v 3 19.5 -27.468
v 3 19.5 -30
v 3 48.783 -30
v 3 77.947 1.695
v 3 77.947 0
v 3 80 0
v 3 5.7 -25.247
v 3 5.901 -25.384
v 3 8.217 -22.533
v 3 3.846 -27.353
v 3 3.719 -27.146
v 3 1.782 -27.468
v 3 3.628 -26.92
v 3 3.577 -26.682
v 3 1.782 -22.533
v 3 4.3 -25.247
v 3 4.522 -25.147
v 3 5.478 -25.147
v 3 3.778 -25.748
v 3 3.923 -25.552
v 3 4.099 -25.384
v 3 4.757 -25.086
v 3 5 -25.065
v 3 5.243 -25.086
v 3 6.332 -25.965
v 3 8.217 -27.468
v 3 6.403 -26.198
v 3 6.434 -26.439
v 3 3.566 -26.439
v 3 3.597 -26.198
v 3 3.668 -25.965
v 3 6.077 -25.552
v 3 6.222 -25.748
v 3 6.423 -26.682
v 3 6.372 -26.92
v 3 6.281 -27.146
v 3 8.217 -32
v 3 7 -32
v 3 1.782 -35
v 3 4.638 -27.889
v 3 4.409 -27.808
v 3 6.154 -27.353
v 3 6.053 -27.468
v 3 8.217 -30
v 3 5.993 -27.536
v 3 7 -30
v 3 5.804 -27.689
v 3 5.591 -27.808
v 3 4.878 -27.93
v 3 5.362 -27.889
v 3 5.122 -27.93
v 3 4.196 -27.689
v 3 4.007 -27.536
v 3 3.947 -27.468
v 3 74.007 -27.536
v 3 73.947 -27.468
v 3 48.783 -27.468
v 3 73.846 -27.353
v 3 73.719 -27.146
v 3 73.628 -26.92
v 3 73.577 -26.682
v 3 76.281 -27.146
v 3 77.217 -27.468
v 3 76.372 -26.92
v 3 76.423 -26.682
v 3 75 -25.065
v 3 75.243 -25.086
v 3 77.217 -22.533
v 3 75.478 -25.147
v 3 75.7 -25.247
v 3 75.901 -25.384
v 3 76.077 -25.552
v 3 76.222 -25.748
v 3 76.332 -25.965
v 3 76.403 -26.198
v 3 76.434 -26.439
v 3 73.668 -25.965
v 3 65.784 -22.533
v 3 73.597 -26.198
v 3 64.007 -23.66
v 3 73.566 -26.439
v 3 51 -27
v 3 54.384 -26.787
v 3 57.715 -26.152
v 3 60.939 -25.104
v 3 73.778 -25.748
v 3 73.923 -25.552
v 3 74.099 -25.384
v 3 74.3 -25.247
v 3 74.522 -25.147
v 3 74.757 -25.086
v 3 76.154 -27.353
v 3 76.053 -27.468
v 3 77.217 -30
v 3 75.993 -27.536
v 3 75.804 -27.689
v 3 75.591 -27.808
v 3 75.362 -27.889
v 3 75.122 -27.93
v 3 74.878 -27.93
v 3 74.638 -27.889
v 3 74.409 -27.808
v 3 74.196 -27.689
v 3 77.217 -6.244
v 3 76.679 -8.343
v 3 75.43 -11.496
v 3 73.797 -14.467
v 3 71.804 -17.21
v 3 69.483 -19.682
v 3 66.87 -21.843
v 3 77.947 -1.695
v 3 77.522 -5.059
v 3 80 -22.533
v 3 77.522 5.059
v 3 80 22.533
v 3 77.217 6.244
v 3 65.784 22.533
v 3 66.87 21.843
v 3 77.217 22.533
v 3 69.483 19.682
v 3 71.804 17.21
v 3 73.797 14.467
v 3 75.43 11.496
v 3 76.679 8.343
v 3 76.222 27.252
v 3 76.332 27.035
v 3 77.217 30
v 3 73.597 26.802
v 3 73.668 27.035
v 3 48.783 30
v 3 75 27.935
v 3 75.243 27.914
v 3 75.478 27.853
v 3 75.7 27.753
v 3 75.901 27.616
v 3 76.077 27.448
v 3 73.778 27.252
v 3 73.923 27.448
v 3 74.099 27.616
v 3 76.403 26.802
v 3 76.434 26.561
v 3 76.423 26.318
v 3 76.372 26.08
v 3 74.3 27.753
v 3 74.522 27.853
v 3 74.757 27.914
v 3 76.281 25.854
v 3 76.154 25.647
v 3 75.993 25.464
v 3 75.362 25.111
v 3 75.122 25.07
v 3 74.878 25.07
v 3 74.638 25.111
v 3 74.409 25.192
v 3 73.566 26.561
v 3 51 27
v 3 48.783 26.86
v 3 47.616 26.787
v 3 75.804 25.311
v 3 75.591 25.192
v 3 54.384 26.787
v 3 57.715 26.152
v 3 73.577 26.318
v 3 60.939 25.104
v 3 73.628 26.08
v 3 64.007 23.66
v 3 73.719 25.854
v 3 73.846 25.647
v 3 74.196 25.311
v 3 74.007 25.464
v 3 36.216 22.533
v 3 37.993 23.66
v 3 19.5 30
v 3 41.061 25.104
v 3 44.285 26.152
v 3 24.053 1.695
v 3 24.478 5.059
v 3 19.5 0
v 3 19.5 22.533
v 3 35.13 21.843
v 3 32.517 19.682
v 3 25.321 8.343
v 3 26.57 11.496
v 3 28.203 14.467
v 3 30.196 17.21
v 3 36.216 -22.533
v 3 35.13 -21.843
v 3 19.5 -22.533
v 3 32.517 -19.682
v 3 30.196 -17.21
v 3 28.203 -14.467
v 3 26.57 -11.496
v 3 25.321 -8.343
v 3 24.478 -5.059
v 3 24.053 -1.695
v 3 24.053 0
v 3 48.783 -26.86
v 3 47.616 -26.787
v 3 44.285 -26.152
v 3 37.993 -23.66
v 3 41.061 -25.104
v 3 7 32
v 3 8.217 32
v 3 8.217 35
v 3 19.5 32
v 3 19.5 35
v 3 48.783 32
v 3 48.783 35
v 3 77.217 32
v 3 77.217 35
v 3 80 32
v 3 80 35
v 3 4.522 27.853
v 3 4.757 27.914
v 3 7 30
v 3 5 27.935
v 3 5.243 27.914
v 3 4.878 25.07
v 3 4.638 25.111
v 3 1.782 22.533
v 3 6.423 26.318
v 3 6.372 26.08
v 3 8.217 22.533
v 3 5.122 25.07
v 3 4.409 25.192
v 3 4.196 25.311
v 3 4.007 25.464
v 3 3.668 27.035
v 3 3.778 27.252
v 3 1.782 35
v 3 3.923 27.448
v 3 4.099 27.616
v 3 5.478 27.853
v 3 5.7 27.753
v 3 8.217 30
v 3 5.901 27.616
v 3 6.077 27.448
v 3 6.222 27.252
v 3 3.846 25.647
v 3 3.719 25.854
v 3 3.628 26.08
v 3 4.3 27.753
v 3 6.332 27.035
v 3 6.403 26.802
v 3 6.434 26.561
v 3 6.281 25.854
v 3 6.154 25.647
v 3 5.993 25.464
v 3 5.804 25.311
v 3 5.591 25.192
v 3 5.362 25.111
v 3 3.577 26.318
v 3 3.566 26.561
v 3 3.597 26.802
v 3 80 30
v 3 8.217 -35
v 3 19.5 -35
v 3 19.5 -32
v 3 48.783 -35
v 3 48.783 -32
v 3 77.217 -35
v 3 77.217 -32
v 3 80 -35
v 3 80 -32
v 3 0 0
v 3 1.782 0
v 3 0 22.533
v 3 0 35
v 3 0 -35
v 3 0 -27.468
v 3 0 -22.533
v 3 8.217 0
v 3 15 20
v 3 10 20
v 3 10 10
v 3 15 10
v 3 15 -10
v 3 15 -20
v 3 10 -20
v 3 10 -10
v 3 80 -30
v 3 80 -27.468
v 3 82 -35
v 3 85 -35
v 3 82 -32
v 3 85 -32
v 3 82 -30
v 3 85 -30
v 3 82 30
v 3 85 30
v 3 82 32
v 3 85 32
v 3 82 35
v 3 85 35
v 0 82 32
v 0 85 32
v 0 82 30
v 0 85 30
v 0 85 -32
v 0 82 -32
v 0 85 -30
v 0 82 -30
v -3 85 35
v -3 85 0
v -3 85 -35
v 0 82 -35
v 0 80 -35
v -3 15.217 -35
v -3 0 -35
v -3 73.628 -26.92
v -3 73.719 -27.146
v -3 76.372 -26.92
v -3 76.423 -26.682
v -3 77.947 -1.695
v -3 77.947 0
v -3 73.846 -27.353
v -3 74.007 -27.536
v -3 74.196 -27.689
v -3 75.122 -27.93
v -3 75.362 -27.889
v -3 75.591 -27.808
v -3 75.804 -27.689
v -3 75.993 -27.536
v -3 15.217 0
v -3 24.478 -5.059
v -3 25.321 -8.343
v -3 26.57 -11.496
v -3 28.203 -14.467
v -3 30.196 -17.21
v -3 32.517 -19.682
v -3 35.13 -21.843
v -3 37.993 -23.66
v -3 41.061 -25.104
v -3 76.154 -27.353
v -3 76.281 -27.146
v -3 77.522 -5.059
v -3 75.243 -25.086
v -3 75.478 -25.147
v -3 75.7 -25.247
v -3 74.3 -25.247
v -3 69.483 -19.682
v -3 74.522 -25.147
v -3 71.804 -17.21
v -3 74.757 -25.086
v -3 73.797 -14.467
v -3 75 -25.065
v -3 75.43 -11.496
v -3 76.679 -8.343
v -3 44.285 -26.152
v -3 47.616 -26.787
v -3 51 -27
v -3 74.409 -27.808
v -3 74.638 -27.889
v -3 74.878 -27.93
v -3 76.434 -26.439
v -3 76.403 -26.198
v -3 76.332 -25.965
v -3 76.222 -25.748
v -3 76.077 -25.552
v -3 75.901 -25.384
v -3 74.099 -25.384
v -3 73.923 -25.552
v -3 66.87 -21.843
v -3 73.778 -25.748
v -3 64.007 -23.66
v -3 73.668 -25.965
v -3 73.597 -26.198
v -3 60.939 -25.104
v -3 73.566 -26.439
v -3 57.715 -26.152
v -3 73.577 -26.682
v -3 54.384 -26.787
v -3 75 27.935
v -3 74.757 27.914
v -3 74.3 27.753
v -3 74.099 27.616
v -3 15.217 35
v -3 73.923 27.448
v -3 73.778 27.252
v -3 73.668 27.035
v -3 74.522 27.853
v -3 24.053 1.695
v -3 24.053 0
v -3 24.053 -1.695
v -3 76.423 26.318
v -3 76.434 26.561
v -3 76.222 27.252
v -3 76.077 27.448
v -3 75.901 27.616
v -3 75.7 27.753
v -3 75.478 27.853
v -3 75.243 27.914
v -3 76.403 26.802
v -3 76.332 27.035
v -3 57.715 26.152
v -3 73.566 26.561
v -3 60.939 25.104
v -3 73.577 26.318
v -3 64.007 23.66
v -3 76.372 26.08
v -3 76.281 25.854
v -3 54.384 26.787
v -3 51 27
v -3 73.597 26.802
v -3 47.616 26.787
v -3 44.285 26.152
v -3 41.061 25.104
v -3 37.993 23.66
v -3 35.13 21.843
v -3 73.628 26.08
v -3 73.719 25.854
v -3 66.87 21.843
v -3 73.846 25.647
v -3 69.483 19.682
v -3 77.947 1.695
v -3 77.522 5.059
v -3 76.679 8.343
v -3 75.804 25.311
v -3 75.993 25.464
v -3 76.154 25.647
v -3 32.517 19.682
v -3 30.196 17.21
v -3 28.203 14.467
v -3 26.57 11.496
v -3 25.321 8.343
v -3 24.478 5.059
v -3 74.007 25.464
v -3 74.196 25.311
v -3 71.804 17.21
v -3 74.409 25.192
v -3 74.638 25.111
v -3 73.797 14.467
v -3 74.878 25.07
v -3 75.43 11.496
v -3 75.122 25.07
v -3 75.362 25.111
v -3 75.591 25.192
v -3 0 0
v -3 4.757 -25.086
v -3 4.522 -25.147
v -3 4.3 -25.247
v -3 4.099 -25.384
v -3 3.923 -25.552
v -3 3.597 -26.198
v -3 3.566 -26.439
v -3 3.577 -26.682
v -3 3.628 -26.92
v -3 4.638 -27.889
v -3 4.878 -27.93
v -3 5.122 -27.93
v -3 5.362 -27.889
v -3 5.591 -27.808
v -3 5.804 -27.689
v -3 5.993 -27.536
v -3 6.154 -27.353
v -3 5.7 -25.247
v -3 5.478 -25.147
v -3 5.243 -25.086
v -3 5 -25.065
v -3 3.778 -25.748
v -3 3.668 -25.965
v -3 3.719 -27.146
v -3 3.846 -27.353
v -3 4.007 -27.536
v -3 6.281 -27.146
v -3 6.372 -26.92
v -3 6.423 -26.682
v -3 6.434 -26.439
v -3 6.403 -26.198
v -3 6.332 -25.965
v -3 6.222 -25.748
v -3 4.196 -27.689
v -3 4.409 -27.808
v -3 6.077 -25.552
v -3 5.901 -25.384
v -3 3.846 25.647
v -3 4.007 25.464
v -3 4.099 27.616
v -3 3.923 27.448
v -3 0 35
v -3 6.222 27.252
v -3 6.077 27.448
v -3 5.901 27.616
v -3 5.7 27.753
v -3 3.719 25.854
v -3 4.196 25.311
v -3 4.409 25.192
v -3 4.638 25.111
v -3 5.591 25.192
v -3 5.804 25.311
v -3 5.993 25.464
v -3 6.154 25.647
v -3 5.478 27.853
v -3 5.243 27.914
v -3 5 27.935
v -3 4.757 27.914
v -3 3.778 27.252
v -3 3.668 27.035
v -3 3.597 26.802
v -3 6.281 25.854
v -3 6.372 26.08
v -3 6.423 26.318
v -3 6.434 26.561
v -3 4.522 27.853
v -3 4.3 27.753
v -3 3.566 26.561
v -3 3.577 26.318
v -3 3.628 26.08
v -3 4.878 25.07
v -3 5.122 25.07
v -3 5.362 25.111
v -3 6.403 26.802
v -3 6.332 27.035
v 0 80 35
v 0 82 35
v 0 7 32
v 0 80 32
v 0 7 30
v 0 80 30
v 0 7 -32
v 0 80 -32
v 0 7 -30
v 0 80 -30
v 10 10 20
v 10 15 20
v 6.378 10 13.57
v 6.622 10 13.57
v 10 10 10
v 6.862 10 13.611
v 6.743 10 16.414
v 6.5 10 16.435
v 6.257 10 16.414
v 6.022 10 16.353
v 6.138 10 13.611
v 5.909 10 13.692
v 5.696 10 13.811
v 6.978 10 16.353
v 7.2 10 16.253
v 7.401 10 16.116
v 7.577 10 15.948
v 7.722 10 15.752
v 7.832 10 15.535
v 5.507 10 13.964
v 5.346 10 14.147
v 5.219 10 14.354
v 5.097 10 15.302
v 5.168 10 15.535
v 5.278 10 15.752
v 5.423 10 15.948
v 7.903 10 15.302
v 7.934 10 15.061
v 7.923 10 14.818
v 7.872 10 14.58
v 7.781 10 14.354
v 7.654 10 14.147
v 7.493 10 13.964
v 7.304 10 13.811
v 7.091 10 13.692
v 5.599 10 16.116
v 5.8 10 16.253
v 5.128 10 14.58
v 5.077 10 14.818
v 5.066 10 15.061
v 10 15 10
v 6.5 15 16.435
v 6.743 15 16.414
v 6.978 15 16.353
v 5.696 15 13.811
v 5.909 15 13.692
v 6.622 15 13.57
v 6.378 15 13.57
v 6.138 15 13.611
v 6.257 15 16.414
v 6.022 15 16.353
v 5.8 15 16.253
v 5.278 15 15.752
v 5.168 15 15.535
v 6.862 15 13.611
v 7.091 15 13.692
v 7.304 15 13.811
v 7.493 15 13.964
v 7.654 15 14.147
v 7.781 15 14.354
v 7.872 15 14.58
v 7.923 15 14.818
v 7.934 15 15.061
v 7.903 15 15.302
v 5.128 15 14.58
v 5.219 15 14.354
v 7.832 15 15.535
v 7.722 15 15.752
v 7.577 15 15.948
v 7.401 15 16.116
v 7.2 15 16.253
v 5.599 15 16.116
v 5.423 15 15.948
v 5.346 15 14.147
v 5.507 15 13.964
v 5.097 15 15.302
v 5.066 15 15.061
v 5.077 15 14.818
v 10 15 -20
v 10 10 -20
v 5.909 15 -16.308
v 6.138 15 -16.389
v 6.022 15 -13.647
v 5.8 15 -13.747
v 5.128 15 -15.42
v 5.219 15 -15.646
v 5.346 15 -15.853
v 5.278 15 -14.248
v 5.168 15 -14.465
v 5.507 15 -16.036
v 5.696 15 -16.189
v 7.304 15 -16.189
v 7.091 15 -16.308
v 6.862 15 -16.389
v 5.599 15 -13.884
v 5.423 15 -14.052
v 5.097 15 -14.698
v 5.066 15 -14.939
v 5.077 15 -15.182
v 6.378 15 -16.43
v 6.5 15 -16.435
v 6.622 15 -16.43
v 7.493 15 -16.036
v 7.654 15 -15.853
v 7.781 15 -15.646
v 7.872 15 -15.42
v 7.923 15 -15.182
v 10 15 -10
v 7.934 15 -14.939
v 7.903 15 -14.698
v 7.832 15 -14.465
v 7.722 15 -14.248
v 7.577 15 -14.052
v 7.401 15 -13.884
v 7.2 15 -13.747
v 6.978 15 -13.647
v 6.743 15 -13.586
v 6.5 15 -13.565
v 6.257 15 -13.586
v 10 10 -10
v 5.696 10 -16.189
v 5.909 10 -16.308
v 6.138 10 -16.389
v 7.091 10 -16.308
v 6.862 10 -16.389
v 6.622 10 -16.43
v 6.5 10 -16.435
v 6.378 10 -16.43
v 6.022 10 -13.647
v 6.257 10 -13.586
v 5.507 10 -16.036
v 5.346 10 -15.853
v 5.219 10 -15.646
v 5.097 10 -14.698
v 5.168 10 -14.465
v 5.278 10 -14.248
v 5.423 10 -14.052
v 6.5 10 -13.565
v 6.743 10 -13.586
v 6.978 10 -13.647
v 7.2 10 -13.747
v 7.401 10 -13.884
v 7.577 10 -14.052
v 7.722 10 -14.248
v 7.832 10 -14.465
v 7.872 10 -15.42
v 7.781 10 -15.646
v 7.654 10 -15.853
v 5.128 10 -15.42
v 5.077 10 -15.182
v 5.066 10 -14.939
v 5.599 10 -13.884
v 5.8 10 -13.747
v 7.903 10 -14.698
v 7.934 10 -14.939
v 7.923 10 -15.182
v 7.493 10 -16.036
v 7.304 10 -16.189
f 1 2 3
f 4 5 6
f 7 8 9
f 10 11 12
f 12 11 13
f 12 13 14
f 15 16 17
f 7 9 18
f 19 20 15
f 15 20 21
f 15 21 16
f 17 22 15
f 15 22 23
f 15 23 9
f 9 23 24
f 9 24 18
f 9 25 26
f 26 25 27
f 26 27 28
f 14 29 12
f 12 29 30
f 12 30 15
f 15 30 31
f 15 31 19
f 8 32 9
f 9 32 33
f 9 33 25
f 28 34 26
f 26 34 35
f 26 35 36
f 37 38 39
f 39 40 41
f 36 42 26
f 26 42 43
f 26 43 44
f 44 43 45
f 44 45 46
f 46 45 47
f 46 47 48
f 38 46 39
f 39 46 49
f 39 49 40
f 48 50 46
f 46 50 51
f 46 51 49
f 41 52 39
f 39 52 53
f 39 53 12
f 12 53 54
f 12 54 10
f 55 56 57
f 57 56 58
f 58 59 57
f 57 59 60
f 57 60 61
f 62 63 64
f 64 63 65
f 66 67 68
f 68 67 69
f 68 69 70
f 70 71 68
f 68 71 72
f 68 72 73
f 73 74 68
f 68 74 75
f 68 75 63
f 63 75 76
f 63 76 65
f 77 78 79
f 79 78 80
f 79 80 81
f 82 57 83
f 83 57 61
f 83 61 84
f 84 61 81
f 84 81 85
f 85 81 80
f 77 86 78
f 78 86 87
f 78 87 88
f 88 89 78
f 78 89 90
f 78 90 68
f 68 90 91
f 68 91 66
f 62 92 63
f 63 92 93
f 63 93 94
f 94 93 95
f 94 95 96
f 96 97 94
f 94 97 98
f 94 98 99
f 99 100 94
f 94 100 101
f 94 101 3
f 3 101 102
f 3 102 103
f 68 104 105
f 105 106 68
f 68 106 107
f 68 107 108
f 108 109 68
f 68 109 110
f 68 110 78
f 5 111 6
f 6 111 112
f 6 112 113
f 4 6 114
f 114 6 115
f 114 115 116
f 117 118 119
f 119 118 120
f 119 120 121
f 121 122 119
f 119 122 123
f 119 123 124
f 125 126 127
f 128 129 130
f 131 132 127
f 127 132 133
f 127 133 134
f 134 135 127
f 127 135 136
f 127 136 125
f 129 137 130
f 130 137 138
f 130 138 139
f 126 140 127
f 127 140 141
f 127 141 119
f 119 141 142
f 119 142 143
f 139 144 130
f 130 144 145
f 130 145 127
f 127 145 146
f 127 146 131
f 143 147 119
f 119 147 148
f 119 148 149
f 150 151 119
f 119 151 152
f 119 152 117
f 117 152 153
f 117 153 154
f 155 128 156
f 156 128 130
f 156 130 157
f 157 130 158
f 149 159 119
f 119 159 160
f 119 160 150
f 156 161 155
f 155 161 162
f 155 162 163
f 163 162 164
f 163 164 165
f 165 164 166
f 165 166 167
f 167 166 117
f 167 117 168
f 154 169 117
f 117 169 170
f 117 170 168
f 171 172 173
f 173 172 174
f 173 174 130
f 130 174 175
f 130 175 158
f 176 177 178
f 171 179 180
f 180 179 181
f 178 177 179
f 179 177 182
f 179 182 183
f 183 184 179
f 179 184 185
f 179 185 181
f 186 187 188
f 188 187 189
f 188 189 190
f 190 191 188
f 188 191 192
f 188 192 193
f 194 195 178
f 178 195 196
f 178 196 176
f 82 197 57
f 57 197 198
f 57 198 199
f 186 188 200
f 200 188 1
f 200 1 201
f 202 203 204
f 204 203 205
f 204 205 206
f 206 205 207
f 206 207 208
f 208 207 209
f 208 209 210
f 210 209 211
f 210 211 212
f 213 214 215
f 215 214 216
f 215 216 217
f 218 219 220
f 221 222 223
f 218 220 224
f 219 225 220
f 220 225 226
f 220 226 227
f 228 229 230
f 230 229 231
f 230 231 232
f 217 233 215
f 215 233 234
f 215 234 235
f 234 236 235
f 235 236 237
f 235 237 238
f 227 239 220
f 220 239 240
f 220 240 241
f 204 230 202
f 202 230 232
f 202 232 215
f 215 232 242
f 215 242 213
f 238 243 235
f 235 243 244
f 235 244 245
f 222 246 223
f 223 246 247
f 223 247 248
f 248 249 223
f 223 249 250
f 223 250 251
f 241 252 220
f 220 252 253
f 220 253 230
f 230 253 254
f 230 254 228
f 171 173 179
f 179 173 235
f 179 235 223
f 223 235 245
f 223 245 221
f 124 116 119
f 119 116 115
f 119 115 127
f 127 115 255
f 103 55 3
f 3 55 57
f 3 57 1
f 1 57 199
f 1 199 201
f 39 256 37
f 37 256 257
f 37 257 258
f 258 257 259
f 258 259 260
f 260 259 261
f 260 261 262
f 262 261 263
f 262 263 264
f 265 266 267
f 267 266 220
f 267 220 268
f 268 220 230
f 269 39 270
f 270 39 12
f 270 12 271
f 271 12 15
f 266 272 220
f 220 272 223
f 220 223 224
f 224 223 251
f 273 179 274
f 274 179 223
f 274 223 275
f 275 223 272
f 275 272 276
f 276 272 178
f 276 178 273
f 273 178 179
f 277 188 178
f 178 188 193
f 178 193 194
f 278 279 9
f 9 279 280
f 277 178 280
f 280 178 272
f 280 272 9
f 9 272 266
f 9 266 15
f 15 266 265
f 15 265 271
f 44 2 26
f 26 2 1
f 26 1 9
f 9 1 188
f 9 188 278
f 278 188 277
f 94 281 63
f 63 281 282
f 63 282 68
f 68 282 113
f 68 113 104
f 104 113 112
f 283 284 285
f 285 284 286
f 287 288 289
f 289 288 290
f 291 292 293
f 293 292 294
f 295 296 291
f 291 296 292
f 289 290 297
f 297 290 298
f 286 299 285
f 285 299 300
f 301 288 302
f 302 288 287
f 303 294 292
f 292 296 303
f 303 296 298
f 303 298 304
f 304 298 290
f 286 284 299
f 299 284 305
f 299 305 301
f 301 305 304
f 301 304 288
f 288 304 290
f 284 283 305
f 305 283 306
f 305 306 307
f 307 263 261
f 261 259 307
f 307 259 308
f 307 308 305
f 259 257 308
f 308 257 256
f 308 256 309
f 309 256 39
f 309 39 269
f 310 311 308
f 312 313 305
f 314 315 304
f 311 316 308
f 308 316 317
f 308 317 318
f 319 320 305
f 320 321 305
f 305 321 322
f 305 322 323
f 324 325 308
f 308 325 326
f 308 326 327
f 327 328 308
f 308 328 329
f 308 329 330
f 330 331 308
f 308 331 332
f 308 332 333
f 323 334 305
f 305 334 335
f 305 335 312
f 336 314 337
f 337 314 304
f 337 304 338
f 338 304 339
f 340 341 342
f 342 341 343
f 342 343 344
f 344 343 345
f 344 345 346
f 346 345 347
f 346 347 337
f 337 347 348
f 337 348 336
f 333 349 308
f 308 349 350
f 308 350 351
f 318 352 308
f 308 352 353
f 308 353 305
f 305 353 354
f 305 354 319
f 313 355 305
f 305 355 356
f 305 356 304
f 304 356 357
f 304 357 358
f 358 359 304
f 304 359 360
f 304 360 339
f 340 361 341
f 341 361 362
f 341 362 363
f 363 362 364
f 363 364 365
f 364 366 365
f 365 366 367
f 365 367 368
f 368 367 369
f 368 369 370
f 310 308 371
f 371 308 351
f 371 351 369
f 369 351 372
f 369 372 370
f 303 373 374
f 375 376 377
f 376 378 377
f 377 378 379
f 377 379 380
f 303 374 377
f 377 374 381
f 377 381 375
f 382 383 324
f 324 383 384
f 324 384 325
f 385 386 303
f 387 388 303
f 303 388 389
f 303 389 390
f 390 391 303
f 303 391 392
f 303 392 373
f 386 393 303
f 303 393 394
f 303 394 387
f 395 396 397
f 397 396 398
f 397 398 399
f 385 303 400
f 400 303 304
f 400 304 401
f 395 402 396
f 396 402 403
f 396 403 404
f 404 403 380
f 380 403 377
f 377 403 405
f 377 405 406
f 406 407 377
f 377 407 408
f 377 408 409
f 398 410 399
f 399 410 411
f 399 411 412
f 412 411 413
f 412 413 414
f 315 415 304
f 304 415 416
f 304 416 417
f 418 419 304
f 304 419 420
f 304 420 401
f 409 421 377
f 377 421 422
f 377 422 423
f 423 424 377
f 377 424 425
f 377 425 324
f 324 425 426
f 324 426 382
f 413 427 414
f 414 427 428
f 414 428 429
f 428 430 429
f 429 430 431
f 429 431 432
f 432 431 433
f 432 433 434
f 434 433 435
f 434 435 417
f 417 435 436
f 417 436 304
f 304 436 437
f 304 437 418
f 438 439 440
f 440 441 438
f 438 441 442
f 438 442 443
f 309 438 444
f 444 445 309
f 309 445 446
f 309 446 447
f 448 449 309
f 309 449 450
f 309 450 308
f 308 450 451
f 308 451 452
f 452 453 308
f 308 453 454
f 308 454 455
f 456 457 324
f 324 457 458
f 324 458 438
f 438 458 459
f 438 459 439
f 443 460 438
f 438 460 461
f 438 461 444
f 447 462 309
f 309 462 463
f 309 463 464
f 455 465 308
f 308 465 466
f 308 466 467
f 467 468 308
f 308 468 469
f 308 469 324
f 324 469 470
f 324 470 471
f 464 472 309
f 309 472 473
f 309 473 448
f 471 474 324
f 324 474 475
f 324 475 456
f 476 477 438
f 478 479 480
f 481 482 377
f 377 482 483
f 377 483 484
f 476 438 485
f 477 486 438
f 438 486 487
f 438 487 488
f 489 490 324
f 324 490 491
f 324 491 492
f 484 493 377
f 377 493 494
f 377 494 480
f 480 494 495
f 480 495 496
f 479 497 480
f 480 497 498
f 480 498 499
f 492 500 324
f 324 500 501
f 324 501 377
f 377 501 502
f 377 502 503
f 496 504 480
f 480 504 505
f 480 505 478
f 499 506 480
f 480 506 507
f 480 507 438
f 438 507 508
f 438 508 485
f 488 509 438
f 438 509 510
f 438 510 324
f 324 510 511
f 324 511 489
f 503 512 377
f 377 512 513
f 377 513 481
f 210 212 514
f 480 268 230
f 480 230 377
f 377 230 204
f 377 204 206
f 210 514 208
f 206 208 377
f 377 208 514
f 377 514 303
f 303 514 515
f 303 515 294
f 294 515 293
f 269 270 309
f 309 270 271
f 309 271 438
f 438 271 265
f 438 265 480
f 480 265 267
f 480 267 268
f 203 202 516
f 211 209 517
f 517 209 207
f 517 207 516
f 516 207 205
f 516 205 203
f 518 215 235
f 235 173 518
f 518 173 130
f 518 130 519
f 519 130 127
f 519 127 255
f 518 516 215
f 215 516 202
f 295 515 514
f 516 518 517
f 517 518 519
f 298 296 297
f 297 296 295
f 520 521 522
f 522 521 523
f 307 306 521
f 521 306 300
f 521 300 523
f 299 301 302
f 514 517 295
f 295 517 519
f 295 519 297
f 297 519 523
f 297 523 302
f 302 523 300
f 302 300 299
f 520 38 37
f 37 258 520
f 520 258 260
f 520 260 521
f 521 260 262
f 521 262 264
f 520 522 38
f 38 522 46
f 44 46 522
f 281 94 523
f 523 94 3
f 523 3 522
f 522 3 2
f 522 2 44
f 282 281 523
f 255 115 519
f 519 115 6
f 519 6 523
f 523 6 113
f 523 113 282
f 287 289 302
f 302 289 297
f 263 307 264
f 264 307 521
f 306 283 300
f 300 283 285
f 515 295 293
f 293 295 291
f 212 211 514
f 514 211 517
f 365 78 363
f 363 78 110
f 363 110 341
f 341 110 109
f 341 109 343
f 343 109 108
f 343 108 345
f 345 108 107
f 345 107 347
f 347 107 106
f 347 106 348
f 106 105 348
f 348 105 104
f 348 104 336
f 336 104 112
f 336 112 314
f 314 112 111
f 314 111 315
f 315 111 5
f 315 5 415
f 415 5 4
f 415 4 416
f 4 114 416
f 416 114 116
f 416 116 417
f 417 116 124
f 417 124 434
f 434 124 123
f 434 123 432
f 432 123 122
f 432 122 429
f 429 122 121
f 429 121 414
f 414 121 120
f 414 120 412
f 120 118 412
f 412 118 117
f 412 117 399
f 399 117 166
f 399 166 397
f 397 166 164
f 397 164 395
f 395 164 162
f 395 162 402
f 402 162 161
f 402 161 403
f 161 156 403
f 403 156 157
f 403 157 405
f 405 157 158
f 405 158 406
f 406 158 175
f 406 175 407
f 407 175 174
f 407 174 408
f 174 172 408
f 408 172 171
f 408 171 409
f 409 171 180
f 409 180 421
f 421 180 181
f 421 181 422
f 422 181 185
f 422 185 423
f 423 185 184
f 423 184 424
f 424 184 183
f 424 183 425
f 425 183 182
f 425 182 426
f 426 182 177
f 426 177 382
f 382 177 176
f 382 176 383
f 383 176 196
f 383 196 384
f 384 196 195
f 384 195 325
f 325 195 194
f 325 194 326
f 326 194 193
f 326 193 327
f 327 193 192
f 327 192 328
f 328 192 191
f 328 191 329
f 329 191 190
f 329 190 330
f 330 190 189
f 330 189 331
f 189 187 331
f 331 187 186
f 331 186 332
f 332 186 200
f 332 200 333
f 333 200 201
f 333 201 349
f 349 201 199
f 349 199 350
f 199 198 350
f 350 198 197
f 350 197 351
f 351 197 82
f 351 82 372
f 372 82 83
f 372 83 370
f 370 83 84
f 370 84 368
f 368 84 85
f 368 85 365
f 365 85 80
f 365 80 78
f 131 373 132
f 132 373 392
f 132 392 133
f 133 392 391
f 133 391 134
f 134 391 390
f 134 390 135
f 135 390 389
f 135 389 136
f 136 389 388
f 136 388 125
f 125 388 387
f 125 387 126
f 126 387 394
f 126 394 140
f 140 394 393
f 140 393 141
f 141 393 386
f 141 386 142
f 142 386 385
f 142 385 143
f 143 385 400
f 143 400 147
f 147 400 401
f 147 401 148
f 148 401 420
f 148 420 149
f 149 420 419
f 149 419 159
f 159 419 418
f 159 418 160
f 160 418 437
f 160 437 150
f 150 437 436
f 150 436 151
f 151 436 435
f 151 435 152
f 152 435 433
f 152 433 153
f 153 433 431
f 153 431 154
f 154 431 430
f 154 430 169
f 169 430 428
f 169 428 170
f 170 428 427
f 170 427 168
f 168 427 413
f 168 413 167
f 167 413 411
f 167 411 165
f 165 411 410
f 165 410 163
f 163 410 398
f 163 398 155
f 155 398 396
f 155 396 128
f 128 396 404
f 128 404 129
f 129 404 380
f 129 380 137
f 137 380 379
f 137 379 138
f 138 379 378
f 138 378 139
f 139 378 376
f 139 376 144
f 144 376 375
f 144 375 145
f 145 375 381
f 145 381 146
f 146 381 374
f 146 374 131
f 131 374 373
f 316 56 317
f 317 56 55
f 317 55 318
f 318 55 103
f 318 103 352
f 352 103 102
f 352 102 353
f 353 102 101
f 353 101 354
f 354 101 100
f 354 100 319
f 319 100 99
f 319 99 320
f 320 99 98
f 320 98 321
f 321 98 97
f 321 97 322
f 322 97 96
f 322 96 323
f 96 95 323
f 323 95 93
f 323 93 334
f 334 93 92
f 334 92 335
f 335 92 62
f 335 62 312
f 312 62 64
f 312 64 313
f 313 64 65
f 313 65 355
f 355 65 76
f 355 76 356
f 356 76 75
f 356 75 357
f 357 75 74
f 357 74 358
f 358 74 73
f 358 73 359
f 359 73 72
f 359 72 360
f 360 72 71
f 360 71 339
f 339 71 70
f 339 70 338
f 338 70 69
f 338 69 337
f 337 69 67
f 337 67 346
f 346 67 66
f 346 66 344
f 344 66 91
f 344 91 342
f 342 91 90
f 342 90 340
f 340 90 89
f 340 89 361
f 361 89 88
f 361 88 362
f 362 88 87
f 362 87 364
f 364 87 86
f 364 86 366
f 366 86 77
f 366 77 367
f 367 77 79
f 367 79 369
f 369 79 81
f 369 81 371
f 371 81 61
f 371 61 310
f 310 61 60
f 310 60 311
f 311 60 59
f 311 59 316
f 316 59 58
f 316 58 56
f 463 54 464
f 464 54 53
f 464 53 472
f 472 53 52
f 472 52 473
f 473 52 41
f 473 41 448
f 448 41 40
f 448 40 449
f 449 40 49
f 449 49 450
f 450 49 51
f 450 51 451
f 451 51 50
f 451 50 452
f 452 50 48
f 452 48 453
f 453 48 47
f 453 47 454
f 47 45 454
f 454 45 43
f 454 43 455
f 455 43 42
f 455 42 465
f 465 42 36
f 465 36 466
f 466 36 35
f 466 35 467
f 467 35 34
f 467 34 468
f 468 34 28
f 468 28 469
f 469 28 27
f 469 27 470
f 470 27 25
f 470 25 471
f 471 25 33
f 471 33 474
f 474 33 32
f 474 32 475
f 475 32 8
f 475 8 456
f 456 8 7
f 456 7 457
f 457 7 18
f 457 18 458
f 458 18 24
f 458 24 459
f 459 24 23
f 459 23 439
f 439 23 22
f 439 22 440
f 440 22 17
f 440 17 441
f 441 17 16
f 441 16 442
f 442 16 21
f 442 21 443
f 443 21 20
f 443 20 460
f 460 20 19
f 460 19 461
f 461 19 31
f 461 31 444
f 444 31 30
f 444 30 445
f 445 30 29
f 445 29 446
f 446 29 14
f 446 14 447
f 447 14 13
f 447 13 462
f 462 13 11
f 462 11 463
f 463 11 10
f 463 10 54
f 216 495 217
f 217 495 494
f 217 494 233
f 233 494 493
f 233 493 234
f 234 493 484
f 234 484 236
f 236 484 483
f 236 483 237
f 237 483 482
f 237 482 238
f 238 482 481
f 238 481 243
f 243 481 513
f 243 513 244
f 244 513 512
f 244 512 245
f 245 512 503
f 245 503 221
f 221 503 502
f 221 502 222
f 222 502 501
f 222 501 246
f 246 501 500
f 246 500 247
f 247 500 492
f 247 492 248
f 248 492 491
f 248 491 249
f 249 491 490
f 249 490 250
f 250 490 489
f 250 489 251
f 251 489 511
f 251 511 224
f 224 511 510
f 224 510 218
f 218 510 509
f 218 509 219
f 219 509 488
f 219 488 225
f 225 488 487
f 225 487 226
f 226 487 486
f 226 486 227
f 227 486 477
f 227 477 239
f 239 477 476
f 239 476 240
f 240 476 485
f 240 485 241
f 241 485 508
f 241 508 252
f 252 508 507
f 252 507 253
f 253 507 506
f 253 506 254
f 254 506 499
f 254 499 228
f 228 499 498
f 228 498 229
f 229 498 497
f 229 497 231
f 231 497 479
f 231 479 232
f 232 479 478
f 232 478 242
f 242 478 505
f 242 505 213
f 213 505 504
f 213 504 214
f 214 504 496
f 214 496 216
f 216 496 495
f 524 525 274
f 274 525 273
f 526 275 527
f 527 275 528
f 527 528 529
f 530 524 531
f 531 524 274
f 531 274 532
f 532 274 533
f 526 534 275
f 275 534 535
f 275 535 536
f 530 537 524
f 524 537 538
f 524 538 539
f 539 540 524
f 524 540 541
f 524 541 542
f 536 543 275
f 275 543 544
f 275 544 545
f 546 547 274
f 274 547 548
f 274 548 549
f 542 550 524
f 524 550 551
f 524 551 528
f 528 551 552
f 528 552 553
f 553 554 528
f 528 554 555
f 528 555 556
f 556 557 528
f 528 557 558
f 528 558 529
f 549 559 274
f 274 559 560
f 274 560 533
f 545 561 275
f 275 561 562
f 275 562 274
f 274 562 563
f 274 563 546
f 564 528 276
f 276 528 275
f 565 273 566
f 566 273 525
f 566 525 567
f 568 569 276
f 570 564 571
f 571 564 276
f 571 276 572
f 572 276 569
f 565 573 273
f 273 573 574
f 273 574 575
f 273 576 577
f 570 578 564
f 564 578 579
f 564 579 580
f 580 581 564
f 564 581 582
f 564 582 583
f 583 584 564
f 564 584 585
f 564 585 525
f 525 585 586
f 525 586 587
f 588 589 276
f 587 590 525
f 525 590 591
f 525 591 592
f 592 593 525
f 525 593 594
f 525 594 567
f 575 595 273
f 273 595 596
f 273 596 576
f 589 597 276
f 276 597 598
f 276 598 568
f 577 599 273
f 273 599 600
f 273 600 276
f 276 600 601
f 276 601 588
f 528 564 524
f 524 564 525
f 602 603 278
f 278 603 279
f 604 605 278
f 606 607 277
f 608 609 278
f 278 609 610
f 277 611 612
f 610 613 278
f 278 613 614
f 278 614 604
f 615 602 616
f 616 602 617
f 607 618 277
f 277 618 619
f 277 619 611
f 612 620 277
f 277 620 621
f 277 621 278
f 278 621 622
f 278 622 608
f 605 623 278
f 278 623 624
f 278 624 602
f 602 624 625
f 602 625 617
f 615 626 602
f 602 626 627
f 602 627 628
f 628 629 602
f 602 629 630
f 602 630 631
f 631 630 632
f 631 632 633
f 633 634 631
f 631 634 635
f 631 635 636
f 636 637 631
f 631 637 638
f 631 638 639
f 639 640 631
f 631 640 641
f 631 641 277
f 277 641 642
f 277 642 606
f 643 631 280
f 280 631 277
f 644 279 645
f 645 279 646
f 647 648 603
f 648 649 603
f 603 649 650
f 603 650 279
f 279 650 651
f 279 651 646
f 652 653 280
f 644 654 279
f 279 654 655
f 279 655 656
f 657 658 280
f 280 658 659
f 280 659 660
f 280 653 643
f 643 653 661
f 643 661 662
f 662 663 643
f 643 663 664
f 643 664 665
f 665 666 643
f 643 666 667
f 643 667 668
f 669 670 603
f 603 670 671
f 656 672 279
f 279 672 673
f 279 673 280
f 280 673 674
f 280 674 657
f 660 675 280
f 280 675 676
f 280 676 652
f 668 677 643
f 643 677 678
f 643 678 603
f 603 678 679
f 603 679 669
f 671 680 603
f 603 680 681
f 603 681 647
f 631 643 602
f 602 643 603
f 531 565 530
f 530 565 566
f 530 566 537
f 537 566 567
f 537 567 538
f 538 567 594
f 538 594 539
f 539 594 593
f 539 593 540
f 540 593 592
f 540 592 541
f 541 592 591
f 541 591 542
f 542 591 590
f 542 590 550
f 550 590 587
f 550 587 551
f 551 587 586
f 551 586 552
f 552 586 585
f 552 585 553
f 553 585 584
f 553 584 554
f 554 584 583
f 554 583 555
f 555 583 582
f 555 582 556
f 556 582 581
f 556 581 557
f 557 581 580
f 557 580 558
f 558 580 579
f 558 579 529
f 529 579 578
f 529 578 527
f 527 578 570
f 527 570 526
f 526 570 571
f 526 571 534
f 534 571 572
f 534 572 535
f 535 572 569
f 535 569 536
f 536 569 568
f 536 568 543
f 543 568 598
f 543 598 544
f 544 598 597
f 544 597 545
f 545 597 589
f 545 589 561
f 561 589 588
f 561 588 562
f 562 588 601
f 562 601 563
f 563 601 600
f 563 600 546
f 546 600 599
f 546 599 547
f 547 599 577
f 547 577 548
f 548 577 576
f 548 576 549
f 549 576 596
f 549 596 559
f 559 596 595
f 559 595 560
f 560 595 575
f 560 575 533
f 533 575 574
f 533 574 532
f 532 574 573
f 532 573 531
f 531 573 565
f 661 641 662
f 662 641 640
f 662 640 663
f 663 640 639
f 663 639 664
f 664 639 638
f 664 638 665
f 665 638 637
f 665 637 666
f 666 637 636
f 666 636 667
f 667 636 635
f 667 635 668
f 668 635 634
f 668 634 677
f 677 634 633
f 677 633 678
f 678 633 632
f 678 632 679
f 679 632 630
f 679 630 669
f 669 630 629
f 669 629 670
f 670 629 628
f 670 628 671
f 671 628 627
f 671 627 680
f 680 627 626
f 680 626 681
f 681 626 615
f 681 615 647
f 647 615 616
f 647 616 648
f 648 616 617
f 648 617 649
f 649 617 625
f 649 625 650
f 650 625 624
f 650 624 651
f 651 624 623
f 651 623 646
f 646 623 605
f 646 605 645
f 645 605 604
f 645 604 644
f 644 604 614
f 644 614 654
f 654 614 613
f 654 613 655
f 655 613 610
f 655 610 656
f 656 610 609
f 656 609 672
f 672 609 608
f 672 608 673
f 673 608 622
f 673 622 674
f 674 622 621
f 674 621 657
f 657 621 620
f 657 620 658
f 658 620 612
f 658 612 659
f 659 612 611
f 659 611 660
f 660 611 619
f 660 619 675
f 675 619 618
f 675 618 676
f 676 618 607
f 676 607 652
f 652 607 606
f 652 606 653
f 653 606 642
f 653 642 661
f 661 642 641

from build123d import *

# Parameters (mm, degrees)
CROQUIS1_W              = 6
CROQUIS1_H              = 70
SALIENTE_EXTRUIR1_DEPTH = 10
CROQUIS2_W              = 6
CROQUIS2_H              = 70
SALIENTE_EXTRUIR2_DEPTH = 75
CROQUIS3_W              = 2
CROQUIS3_H              = 78
CORTAR_EXTRUIR1_DEPTH   = 3
CROQUIS4_W              = 70
CROQUIS4_H              = 2
CORTAR_EXTRUIR2_DEPTH   = 3
CORTAR_EXTRUIR3_REACH   = 8
CROQUIS5_R              = 27
CROQUIS8_R              = 1.435
CORTAR_EXTRUIR5_DEPTH   = 15
MATRIZL1_COUNT          = 2
MATRIZL1_PITCH          = 70
MATRIZL1_COUNT_DIR2     = 2
MATRIZL1_PITCH_DIR2     = 53
CROQUIS12_W             = 10
CROQUIS12_H             = 5
SALIENTE_EXTRUIR3_DEPTH = 7
CROQUIS13_R             = 1.435
CORTAR_EXTRUIR10_DEPTH  = 5


with BuildPart() as part:
    # Croquis1 → Saliente-Extruir1 (new body)
    with BuildSketch(Plane(origin=(0, 0, 0), x_dir=(1, 0, 0), z_dir=(0, 1, 0))):
        Rectangle(CROQUIS1_W, CROQUIS1_H)
    extrude(amount=SALIENTE_EXTRUIR1_DEPTH)

    # Croquis2 → Saliente-Extruir2 (add)
    with BuildSketch(Plane(origin=(0, 10, 0), x_dir=(1, 0, 0), z_dir=(0, 1, 0))):
        Rectangle(CROQUIS2_W, CROQUIS2_H)
    extrude(amount=SALIENTE_EXTRUIR2_DEPTH)

    # Croquis3 → Cortar-Extruir1 (cut)
    with BuildSketch(Plane(origin=(3, 0, 0), x_dir=(0, 0, -1), z_dir=(1, 0, 0))):
        with Locations((-31, 46)):
            Rectangle(CROQUIS3_W, CROQUIS3_H)
    cortar_extruir1 = extrude(amount=-CORTAR_EXTRUIR1_DEPTH, mode=Mode.SUBTRACT)

    # Simetría1: Cortar-Extruir1 across plane
    add(cortar_extruir1.mirror(Plane.XY), mode=Mode.SUBTRACT)

    # Croquis4 → Cortar-Extruir2 (cut)
    with BuildSketch(Plane(origin=(3, 0, 0), x_dir=(0, 0, -1), z_dir=(1, 0, 0))):
        with Locations((0, 81)):
            Rectangle(CROQUIS4_W, CROQUIS4_H)
    extrude(amount=-CORTAR_EXTRUIR2_DEPTH, mode=Mode.SUBTRACT)

    # Croquis5 → Cortar-Extruir3 (cut, up to next)
    with BuildSketch(Plane(origin=(3, 0, 0), x_dir=(0, 0, -1), z_dir=(1, 0, 0)), mode=Mode.PRIVATE) as cortar_extruir3_sk1:
        with Locations((0, 51)):
            Circle(CROQUIS5_R)
    cortar_extruir3_tool1 = extrude(cortar_extruir3_sk1.sketch, amount=-CORTAR_EXTRUIR3_REACH, mode=Mode.PRIVATE) & part.part
    add(cortar_extruir3_tool1.solids().sort_by_distance((3, 51, 0))[0], mode=Mode.SUBTRACT)

    # Croquis8 → Cortar-Extruir5 (cut)
    with BuildSketch(Plane.ZY.offset(3)):
        with Locations((26.5, 75)):
            Circle(CROQUIS8_R)
    cortar_extruir5 = extrude(amount=-CORTAR_EXTRUIR5_DEPTH, mode=Mode.SUBTRACT)

    # MatrizL1: Cortar-Extruir5 2 × 2
    with Locations(*[(0, -i * MATRIZL1_PITCH, -j * MATRIZL1_PITCH_DIR2) for i in range(MATRIZL1_COUNT) for j in range(MATRIZL1_COUNT_DIR2) if (i, j) != (0, 0)]):
        add(cortar_extruir5, mode=Mode.SUBTRACT)

    # Croquis12 → Saliente-Extruir3 (add)
    with BuildSketch(Plane(origin=(3, 0, 0), x_dir=(0, 0, -1), z_dir=(1, 0, 0))):
        with Locations((-15, 12.5)):
            Rectangle(CROQUIS12_W, CROQUIS12_H)
    saliente_extruir3 = extrude(amount=SALIENTE_EXTRUIR3_DEPTH)

    # Simetría4: Saliente-Extruir3 across plane
    add(saliente_extruir3.mirror(Plane.XY))

    # Croquis13 → Cortar-Extruir10 (cut)
    with BuildSketch(Plane(origin=(0, 15, 0), x_dir=(1, 0, 0), z_dir=(0, 1, 0))):
        with Locations((6.5, -15)):
            Circle(CROQUIS13_R)
    cortar_extruir10 = extrude(amount=-CORTAR_EXTRUIR10_DEPTH, mode=Mode.SUBTRACT)

    # Simetría5: Cortar-Extruir10 across plane
    add(cortar_extruir10.mirror(Plane.XY), mode=Mode.SUBTRACT)


solid = part.part
